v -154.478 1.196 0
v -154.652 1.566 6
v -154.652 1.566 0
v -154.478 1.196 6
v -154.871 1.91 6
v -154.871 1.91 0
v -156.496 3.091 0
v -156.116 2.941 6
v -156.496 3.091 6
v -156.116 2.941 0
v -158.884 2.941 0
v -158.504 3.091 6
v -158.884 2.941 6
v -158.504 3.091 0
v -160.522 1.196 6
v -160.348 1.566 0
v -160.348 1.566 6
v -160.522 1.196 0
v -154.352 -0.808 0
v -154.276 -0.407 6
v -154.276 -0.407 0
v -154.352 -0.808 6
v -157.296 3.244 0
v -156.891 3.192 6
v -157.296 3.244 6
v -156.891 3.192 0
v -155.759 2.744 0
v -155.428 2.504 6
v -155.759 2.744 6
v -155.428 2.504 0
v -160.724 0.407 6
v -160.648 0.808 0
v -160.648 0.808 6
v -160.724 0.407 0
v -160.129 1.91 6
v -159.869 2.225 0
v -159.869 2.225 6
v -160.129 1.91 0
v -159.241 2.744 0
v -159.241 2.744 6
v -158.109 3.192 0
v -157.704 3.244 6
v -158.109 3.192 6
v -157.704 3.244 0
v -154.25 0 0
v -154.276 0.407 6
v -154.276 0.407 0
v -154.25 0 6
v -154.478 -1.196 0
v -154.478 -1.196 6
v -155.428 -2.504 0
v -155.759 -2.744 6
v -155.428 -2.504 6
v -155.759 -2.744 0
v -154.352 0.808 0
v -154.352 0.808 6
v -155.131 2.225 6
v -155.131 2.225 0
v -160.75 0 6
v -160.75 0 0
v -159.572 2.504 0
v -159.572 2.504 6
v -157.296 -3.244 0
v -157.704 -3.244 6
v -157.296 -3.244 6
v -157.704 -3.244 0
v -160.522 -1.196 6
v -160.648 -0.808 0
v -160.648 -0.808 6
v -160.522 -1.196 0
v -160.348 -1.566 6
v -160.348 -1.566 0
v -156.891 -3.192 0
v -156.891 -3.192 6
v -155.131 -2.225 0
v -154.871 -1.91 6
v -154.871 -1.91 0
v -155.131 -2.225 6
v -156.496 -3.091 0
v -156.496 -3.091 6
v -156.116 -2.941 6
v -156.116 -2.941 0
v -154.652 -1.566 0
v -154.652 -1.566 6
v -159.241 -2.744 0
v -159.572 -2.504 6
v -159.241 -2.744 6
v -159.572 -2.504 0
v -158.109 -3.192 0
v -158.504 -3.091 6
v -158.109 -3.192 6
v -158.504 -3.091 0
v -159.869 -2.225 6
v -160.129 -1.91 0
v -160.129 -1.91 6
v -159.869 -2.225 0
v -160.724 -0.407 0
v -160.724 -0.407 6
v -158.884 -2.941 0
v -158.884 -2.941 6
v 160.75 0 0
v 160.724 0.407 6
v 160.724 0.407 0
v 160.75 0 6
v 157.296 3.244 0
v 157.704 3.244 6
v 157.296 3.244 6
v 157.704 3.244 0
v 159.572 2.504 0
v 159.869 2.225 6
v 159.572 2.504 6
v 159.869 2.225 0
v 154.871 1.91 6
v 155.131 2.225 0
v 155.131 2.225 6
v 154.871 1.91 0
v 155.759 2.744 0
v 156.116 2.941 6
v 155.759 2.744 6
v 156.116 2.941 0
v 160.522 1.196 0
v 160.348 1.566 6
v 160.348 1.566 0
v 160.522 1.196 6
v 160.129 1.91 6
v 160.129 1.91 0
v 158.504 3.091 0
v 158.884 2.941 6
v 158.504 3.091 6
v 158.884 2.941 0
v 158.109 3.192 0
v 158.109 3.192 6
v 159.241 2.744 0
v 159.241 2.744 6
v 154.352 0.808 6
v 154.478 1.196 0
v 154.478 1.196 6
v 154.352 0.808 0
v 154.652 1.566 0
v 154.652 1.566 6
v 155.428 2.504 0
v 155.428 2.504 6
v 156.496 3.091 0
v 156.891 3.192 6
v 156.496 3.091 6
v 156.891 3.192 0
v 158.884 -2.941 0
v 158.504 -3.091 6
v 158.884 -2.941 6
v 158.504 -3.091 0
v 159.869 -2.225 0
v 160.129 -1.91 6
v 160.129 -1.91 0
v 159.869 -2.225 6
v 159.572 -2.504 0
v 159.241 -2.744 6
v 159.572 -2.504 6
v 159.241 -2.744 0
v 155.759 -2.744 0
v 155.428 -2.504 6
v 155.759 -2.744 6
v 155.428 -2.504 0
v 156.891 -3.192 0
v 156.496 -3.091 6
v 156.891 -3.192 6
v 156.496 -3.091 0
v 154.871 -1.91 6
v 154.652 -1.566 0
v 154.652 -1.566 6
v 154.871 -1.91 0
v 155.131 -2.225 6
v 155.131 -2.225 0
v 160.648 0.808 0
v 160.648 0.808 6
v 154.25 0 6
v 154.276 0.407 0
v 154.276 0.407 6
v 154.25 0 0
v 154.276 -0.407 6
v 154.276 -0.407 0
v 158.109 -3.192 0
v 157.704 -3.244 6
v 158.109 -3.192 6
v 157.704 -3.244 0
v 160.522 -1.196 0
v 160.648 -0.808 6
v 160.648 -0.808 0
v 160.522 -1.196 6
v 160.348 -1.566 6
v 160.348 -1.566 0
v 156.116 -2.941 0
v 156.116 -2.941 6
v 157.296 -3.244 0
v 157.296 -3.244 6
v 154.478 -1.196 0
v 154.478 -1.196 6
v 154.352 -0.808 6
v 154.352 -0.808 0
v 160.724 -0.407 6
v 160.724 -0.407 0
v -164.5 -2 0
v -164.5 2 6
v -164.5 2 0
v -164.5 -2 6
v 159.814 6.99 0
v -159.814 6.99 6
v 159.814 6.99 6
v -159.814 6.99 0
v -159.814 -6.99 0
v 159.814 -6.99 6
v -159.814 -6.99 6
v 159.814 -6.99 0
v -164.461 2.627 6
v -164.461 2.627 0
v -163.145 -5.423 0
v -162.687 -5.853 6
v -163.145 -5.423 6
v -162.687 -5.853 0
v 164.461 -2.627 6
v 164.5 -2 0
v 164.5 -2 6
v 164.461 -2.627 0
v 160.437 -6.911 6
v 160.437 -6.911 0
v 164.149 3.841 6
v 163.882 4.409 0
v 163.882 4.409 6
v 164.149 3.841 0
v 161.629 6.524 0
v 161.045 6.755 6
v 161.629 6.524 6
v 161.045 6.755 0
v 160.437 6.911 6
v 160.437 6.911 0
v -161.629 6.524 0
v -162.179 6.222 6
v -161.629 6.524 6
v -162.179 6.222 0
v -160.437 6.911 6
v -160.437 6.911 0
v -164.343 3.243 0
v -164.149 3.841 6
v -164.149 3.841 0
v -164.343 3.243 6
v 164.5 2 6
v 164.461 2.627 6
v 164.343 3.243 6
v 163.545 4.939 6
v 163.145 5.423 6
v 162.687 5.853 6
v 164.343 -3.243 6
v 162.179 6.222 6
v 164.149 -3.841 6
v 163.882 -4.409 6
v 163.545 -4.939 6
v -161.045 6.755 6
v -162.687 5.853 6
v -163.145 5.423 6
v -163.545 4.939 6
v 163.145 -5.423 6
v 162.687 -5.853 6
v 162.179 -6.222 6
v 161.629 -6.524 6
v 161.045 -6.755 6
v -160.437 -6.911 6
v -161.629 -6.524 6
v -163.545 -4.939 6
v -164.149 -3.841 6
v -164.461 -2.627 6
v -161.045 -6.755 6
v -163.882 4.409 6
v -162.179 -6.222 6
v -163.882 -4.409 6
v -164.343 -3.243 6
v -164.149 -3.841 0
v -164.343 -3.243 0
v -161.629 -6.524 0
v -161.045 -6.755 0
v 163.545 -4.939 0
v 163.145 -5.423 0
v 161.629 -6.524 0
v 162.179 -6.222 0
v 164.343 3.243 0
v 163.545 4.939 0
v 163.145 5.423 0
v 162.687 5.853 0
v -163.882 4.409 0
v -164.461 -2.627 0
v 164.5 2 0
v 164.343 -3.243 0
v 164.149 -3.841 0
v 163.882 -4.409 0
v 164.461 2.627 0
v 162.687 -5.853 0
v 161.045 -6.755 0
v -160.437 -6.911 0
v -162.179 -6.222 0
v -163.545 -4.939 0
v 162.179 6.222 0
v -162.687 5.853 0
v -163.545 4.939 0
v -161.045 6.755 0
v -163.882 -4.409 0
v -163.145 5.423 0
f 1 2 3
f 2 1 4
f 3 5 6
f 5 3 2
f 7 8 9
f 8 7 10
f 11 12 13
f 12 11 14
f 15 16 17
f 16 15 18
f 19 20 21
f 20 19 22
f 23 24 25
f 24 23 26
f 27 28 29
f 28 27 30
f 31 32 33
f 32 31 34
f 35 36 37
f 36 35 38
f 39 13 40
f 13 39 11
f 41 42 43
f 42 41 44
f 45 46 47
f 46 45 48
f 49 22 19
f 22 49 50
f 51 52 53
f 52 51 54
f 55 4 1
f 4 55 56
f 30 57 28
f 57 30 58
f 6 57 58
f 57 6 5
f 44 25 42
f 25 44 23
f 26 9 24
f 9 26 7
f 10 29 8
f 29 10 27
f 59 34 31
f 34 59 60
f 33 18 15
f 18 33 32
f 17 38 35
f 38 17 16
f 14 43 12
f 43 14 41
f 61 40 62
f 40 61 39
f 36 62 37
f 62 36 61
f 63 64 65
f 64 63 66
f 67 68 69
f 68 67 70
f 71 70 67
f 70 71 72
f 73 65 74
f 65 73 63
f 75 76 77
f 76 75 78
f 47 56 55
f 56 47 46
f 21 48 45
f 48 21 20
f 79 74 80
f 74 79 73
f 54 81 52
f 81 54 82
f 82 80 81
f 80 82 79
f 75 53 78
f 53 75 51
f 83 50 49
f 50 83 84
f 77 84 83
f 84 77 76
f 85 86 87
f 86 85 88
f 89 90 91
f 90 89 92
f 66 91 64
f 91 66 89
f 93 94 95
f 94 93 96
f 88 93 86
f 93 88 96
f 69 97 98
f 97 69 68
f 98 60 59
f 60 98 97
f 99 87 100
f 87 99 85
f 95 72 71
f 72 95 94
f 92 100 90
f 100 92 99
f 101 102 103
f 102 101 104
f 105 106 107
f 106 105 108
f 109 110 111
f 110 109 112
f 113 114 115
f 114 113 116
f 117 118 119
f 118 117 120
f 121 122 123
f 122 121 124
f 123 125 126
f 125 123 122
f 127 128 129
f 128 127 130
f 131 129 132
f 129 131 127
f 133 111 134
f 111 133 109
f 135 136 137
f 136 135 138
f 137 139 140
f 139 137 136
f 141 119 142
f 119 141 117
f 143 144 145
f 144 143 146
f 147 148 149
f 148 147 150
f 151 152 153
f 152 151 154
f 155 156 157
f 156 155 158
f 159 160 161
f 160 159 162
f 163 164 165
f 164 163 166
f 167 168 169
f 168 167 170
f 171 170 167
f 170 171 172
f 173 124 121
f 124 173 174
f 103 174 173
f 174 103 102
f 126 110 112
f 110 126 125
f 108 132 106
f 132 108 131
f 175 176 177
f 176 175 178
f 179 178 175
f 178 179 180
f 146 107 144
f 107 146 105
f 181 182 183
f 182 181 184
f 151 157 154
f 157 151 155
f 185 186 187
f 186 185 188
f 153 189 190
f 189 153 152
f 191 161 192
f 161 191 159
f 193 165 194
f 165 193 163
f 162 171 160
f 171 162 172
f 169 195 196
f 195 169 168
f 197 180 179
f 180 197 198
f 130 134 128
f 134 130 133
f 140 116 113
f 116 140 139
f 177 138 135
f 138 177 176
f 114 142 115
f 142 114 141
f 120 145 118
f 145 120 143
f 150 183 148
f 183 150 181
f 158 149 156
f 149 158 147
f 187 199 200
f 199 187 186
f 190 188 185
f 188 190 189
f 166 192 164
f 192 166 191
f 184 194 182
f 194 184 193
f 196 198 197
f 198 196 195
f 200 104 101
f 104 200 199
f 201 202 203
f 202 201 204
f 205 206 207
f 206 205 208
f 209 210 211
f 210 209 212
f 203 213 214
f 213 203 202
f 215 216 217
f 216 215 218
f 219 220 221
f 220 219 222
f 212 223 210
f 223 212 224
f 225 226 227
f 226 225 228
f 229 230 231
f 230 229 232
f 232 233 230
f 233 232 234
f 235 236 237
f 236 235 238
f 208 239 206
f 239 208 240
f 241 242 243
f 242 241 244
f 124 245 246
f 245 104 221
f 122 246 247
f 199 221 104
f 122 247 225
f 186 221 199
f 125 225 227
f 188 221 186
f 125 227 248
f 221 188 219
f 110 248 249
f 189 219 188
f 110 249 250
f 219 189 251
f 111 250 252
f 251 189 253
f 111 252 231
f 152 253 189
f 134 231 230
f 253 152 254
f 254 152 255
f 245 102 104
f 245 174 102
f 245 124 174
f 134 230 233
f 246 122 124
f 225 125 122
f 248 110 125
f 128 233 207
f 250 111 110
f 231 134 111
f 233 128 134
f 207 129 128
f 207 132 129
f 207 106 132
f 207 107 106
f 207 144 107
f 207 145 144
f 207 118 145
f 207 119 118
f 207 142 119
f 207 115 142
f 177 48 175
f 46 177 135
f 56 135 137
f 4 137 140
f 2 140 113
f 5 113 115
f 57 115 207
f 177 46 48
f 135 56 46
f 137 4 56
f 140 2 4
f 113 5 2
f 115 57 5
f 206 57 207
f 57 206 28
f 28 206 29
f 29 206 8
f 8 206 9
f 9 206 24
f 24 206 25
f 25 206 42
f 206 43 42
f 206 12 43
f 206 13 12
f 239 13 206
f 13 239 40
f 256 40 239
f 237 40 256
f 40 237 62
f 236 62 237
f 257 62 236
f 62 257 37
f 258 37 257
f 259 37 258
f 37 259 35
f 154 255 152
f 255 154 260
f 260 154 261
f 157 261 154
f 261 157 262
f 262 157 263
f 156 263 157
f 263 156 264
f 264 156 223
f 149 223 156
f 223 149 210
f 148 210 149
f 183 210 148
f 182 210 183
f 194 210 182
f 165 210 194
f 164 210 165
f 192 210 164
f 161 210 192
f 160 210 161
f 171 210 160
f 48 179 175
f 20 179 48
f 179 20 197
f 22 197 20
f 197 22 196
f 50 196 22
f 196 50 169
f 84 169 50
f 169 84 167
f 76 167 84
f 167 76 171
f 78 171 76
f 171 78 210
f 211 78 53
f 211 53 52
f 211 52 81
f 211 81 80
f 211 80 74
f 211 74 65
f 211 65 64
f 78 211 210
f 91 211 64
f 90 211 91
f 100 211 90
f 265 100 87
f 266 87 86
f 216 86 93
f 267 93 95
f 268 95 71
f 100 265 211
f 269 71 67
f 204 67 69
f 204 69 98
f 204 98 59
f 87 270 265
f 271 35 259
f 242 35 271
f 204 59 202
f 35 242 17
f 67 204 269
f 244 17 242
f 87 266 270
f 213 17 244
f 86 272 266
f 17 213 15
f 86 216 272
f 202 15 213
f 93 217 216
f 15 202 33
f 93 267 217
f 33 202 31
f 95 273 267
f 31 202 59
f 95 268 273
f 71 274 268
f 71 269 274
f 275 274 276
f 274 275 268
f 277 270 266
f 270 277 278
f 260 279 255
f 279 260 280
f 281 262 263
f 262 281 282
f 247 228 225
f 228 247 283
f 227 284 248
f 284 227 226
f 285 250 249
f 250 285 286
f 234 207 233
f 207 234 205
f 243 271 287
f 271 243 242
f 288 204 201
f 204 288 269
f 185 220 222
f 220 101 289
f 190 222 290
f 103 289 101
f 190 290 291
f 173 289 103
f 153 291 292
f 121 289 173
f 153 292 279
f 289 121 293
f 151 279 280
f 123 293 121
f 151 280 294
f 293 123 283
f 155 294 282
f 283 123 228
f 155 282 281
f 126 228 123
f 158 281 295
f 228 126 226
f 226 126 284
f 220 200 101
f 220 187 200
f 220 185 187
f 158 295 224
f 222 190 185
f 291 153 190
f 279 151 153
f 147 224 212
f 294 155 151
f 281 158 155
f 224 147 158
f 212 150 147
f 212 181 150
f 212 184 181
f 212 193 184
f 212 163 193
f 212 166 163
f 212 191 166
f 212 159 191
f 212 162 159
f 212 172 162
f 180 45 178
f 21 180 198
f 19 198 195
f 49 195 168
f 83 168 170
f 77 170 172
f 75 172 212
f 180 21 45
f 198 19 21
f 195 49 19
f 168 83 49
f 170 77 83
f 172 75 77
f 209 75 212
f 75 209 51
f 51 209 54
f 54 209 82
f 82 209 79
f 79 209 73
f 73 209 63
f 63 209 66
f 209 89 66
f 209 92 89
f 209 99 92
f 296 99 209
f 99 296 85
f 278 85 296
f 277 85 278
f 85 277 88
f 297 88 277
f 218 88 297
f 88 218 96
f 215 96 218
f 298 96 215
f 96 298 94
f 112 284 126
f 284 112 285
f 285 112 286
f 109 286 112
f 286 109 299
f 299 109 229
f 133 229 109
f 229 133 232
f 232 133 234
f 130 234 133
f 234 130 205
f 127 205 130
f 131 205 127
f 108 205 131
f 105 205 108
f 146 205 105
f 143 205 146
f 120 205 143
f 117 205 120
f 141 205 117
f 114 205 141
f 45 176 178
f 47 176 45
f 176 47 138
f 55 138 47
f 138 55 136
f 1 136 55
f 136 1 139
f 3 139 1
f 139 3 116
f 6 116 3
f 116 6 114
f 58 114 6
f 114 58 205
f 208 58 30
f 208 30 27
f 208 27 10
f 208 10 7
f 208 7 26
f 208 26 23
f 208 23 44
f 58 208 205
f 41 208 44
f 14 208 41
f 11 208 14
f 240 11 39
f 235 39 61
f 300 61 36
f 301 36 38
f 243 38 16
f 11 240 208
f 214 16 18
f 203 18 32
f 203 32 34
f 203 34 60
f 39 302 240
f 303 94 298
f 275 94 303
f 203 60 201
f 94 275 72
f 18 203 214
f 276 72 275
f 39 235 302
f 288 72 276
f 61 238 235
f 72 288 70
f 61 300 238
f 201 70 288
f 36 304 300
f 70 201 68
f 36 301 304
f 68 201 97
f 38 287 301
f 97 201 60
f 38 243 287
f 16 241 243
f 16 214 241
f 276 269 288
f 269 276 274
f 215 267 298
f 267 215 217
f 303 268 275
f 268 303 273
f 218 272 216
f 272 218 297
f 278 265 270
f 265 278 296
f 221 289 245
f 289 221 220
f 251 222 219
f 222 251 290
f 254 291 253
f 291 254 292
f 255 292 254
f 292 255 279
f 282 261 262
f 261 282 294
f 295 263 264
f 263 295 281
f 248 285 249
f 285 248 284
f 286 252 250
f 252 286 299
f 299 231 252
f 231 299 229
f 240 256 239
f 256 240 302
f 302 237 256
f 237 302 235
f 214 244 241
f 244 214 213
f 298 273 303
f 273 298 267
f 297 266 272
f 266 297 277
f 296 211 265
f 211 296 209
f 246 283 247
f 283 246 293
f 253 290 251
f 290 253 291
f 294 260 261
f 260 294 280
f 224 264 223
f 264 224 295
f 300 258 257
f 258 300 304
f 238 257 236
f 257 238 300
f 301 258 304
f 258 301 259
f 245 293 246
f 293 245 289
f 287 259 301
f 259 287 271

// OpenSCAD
$fn = 50;


difference() {
	union() {
		hull() {
			translate(v = [-159.5000000000, 2.0000000000, 0]) {
				cylinder(h = 6, r = 5);
			}
			translate(v = [159.5000000000, 2.0000000000, 0]) {
				cylinder(h = 6, r = 5);
			}
			translate(v = [-159.5000000000, -2.0000000000, 0]) {
				cylinder(h = 6, r = 5);
			}
			translate(v = [159.5000000000, -2.0000000000, 0]) {
				cylinder(h = 6, r = 5);
			}
		}
	}
	union() {
		translate(v = [-157.5000000000, 0.0000000000, -100.0000000000]) {
			cylinder(h = 200, r = 3.2500000000);
		}
		translate(v = [-157.5000000000, 0.0000000000, -100.0000000000]) {
			cylinder(h = 200, r = 3.2500000000);
		}
		translate(v = [157.5000000000, 0.0000000000, -100.0000000000]) {
			cylinder(h = 200, r = 3.2500000000);
		}
		translate(v = [157.5000000000, 0.0000000000, -100.0000000000]) {
			cylinder(h = 200, r = 3.2500000000);
		}
	}
}
